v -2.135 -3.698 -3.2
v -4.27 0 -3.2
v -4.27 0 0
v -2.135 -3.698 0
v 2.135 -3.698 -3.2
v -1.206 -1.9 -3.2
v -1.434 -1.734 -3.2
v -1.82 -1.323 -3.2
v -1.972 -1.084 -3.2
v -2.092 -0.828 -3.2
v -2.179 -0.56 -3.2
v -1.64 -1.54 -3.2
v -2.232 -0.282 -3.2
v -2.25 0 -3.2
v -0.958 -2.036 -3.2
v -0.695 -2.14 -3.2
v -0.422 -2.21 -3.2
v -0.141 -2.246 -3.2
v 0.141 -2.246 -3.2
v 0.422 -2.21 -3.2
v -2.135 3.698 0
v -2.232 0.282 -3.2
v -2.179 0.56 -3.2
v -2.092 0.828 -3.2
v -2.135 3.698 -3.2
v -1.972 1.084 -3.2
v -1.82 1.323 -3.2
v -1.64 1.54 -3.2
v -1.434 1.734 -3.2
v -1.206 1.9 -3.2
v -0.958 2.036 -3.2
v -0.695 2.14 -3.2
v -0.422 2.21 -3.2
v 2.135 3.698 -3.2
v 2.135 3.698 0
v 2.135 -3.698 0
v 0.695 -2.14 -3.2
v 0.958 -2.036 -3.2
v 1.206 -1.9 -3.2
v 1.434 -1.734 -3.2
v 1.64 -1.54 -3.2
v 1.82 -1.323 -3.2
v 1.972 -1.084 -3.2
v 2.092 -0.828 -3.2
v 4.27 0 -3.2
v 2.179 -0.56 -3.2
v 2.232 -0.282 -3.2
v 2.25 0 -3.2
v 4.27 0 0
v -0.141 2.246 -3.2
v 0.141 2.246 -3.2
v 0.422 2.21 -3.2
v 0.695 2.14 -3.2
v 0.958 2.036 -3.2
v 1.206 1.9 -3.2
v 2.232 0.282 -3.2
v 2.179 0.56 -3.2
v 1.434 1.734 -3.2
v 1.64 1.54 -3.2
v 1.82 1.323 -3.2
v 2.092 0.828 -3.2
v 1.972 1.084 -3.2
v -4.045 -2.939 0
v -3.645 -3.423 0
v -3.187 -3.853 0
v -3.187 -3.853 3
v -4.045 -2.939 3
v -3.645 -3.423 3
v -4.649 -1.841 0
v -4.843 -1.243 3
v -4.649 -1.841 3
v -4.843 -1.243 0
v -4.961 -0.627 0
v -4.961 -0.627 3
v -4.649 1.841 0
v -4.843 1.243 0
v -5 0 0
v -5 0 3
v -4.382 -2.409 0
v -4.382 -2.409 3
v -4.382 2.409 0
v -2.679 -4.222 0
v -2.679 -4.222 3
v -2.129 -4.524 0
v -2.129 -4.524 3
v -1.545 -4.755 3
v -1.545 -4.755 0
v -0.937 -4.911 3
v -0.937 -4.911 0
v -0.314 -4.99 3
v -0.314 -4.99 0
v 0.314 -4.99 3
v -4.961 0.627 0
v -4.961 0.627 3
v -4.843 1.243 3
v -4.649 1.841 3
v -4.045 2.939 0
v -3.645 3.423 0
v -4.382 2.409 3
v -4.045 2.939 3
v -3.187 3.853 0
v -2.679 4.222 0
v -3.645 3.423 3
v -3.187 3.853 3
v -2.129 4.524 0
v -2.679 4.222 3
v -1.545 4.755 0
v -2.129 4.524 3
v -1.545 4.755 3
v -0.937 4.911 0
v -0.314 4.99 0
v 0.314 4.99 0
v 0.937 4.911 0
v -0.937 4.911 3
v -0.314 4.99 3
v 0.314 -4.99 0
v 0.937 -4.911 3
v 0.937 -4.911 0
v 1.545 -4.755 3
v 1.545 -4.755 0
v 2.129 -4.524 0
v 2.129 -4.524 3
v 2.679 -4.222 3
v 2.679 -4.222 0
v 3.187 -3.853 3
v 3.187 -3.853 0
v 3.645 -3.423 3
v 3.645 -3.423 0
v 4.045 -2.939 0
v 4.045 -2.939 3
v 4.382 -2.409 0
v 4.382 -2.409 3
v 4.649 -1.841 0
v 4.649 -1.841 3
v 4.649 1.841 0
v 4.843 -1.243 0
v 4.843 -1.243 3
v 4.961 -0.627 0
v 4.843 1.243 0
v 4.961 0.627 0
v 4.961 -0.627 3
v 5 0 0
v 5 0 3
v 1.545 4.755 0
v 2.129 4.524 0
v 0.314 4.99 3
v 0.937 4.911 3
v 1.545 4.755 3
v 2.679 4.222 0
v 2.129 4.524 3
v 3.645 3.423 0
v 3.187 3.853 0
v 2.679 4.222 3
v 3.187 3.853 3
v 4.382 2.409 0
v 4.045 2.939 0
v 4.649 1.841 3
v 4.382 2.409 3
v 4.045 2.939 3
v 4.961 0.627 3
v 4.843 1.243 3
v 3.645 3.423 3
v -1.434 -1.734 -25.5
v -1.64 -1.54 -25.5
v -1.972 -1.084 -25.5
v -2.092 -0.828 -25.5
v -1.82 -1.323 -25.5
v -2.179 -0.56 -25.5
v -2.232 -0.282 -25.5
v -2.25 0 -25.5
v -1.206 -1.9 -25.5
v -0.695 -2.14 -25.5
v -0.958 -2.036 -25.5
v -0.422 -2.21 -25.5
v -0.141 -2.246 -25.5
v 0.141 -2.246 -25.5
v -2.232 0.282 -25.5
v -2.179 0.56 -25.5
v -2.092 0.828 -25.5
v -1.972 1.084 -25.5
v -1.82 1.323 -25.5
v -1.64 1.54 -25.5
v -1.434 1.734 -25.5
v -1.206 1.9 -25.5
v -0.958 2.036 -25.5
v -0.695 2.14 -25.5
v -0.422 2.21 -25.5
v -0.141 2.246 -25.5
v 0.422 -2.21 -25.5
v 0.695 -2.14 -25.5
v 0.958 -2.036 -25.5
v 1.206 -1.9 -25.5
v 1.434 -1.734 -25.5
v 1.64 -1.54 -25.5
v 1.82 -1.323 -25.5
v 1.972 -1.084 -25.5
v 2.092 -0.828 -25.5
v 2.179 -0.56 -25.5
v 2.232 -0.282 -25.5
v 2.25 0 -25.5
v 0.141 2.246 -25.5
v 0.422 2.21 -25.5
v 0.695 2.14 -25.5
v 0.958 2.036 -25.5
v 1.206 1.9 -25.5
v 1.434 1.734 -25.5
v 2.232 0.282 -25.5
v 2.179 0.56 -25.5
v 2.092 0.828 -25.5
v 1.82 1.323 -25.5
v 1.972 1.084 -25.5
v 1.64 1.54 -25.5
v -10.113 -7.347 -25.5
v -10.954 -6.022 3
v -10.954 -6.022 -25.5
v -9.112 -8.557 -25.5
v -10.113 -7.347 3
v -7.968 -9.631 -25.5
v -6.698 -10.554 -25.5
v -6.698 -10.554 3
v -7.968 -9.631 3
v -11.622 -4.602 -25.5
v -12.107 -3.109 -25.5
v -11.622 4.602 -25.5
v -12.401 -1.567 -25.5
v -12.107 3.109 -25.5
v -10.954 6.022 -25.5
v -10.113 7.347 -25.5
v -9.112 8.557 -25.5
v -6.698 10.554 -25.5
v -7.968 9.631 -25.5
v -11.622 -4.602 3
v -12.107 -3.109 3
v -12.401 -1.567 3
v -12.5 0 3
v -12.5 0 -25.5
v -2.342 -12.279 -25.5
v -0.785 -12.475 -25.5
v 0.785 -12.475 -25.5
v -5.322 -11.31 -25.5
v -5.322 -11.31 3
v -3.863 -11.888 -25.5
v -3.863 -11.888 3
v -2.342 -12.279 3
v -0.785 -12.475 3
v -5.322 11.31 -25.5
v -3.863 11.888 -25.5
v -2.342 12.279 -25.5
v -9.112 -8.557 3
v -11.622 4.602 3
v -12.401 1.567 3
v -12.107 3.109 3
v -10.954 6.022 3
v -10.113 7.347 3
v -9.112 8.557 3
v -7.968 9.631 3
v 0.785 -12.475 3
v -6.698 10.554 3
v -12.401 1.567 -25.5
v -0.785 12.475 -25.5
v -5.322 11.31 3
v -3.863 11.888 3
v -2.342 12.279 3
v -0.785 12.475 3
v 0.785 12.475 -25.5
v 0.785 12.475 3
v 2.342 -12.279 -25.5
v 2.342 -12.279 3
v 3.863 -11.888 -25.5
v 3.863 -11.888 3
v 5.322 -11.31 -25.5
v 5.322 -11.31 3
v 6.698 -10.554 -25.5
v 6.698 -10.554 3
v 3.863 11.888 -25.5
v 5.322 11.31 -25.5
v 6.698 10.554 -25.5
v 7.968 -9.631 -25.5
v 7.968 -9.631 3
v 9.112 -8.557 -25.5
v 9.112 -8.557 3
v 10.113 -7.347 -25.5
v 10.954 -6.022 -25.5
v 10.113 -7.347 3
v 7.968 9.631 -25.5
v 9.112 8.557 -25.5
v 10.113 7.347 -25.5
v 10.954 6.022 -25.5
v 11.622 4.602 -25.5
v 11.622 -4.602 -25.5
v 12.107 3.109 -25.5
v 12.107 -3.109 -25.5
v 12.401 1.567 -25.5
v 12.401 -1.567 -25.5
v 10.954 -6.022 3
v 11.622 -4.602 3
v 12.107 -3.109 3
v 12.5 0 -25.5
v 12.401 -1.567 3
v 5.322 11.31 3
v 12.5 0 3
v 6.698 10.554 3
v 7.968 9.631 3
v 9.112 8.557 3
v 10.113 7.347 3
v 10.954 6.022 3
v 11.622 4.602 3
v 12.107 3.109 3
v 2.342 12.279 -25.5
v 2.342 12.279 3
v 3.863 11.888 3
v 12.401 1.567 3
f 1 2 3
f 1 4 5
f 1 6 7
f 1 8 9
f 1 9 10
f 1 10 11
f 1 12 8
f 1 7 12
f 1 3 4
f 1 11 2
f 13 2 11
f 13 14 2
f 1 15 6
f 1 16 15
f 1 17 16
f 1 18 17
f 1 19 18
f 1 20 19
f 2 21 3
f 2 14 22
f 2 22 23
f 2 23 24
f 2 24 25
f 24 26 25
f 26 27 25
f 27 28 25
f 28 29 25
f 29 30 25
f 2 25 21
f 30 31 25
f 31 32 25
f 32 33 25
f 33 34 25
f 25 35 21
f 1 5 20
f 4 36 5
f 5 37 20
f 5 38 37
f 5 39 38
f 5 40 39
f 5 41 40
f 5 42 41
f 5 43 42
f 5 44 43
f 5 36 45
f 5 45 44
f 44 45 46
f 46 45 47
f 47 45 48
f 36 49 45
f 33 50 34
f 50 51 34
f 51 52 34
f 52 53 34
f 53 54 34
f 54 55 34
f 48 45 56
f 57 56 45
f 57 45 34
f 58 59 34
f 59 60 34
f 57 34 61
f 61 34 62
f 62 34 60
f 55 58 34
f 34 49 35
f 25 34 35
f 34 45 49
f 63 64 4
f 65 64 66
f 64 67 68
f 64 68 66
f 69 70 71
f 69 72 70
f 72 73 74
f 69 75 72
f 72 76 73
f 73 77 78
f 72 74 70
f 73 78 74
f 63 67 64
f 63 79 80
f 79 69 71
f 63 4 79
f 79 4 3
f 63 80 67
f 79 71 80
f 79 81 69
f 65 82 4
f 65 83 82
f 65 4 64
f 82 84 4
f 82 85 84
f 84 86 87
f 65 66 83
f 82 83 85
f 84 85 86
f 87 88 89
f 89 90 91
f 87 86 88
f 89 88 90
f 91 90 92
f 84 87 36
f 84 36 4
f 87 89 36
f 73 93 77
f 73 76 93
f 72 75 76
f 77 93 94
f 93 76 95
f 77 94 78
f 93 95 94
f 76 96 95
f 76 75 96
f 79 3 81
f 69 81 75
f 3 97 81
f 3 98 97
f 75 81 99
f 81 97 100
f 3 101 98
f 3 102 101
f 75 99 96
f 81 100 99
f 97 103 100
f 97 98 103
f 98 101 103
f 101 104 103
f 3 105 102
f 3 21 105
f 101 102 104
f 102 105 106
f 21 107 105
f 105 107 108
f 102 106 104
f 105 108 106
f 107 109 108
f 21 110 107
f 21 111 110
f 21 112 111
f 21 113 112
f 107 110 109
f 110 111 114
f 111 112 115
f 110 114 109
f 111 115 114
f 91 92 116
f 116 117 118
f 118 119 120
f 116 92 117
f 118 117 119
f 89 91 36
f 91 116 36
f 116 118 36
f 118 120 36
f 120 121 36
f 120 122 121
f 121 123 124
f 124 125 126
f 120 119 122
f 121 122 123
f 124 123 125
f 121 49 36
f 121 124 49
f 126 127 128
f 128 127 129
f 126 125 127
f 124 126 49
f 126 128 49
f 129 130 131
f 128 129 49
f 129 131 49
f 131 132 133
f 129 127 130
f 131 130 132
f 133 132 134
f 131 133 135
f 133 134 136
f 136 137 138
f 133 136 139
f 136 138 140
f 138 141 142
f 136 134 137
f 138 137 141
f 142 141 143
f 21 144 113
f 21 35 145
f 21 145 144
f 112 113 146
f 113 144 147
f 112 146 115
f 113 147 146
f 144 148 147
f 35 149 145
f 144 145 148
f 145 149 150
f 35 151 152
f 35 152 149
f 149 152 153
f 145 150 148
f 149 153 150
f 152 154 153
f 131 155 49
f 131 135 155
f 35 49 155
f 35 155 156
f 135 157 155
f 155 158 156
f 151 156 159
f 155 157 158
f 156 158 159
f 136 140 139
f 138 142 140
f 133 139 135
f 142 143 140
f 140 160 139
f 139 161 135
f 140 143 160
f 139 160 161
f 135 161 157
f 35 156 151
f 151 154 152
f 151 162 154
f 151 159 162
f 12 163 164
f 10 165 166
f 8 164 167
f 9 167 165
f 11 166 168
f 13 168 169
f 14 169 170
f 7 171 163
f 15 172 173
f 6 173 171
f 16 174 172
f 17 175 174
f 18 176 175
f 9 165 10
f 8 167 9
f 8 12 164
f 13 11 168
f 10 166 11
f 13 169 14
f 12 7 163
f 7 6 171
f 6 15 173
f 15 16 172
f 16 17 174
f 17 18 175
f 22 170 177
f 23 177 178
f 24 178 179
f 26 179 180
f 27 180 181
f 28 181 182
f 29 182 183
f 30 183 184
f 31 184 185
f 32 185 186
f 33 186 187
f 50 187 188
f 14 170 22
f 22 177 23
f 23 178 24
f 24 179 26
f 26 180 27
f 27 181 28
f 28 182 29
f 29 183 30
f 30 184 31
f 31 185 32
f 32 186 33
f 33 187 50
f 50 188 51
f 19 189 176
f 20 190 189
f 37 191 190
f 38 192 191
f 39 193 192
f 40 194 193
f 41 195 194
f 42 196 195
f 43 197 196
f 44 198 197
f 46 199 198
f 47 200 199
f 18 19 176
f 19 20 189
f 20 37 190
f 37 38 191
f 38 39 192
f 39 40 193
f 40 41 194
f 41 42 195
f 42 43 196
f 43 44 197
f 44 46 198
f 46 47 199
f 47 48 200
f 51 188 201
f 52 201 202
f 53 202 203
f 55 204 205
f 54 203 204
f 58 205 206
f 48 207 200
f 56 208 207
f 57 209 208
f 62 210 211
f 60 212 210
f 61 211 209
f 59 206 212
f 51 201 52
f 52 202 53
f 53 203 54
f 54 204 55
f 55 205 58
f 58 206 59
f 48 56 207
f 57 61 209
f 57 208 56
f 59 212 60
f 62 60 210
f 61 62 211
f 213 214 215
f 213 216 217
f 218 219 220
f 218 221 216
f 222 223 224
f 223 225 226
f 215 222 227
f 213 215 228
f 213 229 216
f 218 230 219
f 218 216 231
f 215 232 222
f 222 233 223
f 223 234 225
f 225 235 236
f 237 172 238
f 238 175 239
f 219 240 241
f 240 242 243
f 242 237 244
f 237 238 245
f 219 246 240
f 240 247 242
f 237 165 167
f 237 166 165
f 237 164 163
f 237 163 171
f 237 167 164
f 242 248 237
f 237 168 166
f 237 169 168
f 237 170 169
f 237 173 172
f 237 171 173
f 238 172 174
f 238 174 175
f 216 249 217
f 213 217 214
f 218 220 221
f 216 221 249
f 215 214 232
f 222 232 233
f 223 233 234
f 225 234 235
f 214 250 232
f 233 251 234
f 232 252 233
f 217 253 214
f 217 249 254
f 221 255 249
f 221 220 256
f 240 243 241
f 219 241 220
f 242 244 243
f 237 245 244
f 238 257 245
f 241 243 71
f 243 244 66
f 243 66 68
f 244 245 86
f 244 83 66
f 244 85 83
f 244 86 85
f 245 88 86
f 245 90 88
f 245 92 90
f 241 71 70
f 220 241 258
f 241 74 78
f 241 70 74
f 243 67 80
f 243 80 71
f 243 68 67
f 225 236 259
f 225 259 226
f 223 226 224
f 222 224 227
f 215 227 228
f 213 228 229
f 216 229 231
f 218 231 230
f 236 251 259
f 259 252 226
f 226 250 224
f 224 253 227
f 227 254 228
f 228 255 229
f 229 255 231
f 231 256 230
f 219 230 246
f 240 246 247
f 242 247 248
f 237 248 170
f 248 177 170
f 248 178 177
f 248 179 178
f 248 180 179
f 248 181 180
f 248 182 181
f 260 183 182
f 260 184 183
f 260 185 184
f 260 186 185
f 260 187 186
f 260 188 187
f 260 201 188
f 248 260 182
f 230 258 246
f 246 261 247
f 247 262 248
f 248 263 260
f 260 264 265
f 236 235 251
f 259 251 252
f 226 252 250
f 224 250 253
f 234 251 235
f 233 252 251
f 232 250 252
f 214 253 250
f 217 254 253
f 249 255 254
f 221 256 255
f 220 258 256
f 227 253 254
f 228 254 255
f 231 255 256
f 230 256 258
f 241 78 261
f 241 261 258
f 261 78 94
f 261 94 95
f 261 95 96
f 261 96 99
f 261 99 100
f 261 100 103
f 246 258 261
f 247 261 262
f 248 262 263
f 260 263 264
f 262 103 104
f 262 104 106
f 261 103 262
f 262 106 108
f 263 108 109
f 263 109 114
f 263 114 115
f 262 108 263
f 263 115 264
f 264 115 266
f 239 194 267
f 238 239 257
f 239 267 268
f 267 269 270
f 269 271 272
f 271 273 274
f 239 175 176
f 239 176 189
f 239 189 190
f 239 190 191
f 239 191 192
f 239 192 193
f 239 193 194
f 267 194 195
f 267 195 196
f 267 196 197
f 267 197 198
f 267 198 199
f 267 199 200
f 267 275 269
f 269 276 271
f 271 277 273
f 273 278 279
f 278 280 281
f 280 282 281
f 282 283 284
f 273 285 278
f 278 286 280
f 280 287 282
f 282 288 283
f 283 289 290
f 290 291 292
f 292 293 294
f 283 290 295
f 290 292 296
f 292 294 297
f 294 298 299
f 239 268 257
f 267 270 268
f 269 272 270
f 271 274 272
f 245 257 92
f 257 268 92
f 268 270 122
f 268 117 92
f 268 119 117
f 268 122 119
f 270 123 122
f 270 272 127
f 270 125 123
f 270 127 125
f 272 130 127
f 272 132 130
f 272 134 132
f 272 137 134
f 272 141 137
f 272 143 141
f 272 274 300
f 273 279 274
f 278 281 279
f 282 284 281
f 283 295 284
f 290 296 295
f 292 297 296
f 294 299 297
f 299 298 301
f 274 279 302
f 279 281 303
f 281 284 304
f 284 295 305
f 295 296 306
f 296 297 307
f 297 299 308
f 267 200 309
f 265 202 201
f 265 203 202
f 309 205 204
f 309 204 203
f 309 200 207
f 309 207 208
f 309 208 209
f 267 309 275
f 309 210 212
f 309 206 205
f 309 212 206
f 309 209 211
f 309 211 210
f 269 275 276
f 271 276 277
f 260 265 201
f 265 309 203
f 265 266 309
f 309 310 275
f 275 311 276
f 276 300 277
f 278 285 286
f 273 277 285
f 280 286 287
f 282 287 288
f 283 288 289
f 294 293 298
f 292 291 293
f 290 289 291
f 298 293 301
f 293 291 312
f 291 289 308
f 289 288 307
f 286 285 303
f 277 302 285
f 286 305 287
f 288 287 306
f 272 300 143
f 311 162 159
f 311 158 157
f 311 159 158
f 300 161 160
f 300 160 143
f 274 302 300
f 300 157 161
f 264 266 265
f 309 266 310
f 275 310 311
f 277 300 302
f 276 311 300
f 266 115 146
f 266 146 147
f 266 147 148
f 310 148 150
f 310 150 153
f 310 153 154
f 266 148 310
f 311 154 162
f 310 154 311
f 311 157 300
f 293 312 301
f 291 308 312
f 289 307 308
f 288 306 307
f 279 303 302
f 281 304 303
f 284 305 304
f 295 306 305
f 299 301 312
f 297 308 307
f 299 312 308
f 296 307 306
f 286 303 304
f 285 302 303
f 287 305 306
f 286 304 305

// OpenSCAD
$fn = 50;

difference() {
	union() {
		translate(v = [0, 0, -25.5]) {
			cylinder(h = 28.5, r = 12.5);
		}
	}
	union() {
		translate(v = [0, 0, 0]) {
			rotate(a = [0, 0, 0]) {
				difference() {
					union() {
						translate(v = [0, 0, -3.2]) {
							linear_extrude(height = 3.2) {
								polygon(points = [[4.2698, 0.0], [2.1349000000000005, 3.697755269078796], [-2.134899999999999, 3.6977552690787965], [-4.2698, 5.228996902999369e-16], [-2.134900000000002, -3.6977552690787956], [2.1348999999999974, -3.697755269078798]]);
							}
						}
					}
					union();
				}
			}
		}
		#cylinder(h = 3, r = 5.0);
		#translate(v = [0, 0, -100.0]) {
			cylinder(h = 200, r = 2.25);
		}
	}
}
